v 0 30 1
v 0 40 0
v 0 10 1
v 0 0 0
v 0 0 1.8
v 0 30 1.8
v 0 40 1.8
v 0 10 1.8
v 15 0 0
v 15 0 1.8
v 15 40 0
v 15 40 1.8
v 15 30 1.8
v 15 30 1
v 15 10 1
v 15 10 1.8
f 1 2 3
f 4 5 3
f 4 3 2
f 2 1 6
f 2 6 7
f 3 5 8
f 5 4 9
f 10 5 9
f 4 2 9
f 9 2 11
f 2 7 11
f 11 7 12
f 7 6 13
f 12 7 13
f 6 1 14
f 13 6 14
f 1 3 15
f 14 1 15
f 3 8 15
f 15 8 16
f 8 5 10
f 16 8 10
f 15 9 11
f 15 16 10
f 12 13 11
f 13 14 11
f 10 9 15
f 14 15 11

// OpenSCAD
// cutting block for splitting 1.6mm thick silicone sheet
cube([15,40,1]);
cube([15,10,1.8]);
translate([0,30,0]) cube([15,10,1.8]);
